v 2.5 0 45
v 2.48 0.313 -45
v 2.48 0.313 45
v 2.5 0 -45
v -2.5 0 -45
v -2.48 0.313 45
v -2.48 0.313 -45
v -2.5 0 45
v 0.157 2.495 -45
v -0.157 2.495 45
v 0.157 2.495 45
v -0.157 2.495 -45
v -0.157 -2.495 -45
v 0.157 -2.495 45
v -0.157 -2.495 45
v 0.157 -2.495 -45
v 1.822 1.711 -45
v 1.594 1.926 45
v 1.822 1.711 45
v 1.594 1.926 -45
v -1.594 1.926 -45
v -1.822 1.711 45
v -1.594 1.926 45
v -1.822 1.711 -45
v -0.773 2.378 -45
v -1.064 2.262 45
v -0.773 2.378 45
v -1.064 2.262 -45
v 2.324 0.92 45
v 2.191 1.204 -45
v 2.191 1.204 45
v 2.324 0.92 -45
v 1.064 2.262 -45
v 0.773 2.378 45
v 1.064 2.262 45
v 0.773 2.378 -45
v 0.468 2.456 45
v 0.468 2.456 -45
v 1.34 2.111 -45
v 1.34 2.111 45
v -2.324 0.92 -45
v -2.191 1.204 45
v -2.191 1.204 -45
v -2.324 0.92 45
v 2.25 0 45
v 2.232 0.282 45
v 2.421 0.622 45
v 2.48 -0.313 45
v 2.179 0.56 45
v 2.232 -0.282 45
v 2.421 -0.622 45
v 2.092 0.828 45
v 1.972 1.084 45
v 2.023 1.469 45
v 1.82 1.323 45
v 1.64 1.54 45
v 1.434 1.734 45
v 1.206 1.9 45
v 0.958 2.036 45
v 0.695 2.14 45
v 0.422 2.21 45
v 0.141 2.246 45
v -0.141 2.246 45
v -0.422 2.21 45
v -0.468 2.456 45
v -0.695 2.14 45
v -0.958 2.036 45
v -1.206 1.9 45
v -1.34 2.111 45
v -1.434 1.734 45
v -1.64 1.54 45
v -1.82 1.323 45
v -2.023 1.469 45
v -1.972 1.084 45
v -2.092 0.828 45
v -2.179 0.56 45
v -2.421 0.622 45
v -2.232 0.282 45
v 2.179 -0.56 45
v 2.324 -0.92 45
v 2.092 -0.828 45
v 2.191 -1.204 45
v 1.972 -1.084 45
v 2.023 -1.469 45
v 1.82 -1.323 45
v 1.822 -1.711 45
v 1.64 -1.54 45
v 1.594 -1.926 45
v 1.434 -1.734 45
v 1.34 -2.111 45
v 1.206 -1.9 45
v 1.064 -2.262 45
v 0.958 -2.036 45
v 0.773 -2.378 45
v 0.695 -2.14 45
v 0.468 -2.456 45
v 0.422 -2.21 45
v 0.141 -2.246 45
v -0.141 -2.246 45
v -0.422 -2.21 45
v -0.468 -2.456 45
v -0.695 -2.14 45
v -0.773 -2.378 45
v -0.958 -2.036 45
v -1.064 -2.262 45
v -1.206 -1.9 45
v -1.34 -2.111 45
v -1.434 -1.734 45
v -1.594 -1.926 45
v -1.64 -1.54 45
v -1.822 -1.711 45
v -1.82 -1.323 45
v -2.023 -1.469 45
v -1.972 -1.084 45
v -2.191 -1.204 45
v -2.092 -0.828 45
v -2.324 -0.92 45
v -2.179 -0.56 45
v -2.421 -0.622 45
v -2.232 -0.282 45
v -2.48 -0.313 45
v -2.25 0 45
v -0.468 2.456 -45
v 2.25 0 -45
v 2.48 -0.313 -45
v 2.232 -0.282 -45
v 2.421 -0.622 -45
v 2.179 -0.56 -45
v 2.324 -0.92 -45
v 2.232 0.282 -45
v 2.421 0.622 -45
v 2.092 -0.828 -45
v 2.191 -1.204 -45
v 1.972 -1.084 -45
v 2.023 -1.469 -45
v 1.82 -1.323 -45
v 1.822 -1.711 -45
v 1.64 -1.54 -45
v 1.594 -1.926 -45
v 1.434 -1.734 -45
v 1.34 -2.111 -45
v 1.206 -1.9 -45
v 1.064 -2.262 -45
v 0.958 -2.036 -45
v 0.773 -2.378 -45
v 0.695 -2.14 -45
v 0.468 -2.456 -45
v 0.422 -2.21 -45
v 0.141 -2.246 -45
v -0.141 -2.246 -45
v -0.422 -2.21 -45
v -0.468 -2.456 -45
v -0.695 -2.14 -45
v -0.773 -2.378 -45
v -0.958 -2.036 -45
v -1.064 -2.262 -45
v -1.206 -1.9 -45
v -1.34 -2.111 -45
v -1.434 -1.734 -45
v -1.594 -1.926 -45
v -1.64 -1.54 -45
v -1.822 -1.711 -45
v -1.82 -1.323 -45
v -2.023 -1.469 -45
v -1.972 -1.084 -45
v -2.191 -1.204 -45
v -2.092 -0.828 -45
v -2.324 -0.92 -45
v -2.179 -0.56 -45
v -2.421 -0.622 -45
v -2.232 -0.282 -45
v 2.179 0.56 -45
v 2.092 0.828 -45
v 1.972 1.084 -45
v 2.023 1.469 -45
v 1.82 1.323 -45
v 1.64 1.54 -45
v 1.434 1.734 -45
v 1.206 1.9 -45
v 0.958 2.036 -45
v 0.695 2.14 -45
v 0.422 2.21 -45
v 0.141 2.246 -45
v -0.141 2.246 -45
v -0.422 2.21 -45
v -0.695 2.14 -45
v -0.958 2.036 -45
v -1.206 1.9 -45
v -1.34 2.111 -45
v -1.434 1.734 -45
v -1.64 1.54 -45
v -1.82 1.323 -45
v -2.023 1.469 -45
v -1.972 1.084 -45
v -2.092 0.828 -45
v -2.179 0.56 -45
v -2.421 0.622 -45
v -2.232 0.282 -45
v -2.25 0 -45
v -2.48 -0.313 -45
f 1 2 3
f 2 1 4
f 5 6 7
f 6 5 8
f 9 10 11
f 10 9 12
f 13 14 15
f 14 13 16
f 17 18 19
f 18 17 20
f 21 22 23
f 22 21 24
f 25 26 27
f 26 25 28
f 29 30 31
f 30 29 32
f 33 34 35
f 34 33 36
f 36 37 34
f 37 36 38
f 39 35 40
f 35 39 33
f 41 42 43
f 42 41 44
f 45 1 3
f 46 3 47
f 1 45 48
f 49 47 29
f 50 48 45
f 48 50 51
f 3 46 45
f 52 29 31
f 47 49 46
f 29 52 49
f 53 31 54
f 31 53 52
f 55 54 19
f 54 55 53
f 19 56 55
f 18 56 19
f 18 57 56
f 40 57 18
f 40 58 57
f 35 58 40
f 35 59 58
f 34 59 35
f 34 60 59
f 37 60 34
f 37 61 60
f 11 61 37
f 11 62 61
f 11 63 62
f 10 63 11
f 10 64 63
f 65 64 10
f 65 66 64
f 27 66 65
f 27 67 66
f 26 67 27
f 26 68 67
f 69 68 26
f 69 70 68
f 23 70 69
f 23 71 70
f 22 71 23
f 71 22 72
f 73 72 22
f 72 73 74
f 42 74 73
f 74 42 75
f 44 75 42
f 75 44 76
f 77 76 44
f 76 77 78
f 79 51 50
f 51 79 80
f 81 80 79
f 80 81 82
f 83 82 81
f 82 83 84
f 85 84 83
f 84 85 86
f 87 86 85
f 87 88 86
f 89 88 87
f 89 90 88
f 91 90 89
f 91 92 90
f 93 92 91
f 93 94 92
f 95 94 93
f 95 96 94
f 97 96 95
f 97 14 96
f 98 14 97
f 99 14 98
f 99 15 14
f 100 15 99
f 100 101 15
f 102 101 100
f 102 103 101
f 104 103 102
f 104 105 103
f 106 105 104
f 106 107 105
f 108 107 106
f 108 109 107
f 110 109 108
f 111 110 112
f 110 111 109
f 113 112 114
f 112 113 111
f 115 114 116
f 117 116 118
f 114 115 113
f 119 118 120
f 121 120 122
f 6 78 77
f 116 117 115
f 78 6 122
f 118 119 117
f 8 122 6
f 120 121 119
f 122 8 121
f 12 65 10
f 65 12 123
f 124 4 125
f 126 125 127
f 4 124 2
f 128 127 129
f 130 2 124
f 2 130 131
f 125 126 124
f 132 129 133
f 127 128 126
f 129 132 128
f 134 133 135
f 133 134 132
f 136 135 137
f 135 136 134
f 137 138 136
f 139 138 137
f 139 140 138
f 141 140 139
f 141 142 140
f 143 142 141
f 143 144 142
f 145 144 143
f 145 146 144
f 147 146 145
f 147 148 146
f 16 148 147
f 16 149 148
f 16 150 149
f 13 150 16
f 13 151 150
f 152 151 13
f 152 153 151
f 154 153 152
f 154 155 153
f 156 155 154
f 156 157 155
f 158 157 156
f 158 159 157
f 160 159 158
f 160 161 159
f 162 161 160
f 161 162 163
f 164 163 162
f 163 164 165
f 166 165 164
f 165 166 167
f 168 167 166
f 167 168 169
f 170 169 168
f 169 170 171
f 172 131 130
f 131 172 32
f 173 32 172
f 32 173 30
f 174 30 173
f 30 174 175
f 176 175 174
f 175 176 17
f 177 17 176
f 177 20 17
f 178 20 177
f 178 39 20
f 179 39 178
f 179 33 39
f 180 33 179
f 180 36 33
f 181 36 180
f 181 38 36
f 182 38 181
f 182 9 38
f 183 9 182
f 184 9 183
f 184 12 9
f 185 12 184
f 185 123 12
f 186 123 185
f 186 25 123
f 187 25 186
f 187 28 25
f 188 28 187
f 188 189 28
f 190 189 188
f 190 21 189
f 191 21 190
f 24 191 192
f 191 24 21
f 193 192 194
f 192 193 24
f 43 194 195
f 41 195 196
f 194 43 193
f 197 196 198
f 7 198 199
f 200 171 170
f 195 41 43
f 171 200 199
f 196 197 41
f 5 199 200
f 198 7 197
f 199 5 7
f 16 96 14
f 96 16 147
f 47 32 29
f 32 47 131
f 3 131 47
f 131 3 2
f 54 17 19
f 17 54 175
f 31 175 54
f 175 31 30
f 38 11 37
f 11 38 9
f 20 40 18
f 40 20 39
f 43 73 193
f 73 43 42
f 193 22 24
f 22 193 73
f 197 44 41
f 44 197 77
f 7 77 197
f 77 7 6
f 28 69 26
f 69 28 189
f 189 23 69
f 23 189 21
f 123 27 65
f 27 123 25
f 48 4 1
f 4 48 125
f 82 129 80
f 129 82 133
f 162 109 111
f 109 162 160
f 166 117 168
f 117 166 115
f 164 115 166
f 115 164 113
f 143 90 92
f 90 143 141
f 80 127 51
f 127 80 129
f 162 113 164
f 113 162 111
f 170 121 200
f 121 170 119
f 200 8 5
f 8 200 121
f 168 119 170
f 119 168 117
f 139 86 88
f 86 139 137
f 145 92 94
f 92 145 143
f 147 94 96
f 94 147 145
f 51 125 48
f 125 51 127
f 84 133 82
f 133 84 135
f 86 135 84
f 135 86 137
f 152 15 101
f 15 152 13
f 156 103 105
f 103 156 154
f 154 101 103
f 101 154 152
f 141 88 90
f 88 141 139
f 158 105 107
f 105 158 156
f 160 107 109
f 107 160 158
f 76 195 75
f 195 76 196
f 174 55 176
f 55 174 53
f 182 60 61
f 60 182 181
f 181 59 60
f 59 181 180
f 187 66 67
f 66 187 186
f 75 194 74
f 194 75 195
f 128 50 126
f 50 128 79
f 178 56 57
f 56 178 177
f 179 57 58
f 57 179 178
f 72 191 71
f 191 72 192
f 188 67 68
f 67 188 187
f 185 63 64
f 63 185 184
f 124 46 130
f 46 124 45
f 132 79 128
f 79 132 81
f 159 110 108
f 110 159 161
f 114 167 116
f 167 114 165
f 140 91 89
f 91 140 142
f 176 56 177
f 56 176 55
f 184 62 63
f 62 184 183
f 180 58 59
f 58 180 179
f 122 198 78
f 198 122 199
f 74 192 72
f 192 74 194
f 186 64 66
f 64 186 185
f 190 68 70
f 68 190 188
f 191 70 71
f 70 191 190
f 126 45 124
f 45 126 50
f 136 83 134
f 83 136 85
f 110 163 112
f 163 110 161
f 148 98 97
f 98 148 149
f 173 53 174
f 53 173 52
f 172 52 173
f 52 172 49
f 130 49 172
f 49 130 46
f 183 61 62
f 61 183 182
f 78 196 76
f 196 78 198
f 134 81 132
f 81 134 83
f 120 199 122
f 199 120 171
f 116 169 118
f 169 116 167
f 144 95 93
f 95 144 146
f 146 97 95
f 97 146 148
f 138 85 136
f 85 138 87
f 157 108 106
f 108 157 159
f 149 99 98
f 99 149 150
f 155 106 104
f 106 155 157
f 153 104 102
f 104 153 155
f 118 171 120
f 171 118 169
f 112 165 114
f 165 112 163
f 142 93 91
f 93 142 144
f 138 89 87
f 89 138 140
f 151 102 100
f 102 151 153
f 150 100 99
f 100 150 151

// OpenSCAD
$fn = 50;


difference() {
	union() {
		translate(v = [0, 0, -45.0000000000]) {
			cylinder(h = 90, r = 2.5000000000);
		}
	}
	union() {
		translate(v = [0, 0, -100.0000000000]) {
			cylinder(h = 200, r = 2.2500000000);
		}
	}
}
